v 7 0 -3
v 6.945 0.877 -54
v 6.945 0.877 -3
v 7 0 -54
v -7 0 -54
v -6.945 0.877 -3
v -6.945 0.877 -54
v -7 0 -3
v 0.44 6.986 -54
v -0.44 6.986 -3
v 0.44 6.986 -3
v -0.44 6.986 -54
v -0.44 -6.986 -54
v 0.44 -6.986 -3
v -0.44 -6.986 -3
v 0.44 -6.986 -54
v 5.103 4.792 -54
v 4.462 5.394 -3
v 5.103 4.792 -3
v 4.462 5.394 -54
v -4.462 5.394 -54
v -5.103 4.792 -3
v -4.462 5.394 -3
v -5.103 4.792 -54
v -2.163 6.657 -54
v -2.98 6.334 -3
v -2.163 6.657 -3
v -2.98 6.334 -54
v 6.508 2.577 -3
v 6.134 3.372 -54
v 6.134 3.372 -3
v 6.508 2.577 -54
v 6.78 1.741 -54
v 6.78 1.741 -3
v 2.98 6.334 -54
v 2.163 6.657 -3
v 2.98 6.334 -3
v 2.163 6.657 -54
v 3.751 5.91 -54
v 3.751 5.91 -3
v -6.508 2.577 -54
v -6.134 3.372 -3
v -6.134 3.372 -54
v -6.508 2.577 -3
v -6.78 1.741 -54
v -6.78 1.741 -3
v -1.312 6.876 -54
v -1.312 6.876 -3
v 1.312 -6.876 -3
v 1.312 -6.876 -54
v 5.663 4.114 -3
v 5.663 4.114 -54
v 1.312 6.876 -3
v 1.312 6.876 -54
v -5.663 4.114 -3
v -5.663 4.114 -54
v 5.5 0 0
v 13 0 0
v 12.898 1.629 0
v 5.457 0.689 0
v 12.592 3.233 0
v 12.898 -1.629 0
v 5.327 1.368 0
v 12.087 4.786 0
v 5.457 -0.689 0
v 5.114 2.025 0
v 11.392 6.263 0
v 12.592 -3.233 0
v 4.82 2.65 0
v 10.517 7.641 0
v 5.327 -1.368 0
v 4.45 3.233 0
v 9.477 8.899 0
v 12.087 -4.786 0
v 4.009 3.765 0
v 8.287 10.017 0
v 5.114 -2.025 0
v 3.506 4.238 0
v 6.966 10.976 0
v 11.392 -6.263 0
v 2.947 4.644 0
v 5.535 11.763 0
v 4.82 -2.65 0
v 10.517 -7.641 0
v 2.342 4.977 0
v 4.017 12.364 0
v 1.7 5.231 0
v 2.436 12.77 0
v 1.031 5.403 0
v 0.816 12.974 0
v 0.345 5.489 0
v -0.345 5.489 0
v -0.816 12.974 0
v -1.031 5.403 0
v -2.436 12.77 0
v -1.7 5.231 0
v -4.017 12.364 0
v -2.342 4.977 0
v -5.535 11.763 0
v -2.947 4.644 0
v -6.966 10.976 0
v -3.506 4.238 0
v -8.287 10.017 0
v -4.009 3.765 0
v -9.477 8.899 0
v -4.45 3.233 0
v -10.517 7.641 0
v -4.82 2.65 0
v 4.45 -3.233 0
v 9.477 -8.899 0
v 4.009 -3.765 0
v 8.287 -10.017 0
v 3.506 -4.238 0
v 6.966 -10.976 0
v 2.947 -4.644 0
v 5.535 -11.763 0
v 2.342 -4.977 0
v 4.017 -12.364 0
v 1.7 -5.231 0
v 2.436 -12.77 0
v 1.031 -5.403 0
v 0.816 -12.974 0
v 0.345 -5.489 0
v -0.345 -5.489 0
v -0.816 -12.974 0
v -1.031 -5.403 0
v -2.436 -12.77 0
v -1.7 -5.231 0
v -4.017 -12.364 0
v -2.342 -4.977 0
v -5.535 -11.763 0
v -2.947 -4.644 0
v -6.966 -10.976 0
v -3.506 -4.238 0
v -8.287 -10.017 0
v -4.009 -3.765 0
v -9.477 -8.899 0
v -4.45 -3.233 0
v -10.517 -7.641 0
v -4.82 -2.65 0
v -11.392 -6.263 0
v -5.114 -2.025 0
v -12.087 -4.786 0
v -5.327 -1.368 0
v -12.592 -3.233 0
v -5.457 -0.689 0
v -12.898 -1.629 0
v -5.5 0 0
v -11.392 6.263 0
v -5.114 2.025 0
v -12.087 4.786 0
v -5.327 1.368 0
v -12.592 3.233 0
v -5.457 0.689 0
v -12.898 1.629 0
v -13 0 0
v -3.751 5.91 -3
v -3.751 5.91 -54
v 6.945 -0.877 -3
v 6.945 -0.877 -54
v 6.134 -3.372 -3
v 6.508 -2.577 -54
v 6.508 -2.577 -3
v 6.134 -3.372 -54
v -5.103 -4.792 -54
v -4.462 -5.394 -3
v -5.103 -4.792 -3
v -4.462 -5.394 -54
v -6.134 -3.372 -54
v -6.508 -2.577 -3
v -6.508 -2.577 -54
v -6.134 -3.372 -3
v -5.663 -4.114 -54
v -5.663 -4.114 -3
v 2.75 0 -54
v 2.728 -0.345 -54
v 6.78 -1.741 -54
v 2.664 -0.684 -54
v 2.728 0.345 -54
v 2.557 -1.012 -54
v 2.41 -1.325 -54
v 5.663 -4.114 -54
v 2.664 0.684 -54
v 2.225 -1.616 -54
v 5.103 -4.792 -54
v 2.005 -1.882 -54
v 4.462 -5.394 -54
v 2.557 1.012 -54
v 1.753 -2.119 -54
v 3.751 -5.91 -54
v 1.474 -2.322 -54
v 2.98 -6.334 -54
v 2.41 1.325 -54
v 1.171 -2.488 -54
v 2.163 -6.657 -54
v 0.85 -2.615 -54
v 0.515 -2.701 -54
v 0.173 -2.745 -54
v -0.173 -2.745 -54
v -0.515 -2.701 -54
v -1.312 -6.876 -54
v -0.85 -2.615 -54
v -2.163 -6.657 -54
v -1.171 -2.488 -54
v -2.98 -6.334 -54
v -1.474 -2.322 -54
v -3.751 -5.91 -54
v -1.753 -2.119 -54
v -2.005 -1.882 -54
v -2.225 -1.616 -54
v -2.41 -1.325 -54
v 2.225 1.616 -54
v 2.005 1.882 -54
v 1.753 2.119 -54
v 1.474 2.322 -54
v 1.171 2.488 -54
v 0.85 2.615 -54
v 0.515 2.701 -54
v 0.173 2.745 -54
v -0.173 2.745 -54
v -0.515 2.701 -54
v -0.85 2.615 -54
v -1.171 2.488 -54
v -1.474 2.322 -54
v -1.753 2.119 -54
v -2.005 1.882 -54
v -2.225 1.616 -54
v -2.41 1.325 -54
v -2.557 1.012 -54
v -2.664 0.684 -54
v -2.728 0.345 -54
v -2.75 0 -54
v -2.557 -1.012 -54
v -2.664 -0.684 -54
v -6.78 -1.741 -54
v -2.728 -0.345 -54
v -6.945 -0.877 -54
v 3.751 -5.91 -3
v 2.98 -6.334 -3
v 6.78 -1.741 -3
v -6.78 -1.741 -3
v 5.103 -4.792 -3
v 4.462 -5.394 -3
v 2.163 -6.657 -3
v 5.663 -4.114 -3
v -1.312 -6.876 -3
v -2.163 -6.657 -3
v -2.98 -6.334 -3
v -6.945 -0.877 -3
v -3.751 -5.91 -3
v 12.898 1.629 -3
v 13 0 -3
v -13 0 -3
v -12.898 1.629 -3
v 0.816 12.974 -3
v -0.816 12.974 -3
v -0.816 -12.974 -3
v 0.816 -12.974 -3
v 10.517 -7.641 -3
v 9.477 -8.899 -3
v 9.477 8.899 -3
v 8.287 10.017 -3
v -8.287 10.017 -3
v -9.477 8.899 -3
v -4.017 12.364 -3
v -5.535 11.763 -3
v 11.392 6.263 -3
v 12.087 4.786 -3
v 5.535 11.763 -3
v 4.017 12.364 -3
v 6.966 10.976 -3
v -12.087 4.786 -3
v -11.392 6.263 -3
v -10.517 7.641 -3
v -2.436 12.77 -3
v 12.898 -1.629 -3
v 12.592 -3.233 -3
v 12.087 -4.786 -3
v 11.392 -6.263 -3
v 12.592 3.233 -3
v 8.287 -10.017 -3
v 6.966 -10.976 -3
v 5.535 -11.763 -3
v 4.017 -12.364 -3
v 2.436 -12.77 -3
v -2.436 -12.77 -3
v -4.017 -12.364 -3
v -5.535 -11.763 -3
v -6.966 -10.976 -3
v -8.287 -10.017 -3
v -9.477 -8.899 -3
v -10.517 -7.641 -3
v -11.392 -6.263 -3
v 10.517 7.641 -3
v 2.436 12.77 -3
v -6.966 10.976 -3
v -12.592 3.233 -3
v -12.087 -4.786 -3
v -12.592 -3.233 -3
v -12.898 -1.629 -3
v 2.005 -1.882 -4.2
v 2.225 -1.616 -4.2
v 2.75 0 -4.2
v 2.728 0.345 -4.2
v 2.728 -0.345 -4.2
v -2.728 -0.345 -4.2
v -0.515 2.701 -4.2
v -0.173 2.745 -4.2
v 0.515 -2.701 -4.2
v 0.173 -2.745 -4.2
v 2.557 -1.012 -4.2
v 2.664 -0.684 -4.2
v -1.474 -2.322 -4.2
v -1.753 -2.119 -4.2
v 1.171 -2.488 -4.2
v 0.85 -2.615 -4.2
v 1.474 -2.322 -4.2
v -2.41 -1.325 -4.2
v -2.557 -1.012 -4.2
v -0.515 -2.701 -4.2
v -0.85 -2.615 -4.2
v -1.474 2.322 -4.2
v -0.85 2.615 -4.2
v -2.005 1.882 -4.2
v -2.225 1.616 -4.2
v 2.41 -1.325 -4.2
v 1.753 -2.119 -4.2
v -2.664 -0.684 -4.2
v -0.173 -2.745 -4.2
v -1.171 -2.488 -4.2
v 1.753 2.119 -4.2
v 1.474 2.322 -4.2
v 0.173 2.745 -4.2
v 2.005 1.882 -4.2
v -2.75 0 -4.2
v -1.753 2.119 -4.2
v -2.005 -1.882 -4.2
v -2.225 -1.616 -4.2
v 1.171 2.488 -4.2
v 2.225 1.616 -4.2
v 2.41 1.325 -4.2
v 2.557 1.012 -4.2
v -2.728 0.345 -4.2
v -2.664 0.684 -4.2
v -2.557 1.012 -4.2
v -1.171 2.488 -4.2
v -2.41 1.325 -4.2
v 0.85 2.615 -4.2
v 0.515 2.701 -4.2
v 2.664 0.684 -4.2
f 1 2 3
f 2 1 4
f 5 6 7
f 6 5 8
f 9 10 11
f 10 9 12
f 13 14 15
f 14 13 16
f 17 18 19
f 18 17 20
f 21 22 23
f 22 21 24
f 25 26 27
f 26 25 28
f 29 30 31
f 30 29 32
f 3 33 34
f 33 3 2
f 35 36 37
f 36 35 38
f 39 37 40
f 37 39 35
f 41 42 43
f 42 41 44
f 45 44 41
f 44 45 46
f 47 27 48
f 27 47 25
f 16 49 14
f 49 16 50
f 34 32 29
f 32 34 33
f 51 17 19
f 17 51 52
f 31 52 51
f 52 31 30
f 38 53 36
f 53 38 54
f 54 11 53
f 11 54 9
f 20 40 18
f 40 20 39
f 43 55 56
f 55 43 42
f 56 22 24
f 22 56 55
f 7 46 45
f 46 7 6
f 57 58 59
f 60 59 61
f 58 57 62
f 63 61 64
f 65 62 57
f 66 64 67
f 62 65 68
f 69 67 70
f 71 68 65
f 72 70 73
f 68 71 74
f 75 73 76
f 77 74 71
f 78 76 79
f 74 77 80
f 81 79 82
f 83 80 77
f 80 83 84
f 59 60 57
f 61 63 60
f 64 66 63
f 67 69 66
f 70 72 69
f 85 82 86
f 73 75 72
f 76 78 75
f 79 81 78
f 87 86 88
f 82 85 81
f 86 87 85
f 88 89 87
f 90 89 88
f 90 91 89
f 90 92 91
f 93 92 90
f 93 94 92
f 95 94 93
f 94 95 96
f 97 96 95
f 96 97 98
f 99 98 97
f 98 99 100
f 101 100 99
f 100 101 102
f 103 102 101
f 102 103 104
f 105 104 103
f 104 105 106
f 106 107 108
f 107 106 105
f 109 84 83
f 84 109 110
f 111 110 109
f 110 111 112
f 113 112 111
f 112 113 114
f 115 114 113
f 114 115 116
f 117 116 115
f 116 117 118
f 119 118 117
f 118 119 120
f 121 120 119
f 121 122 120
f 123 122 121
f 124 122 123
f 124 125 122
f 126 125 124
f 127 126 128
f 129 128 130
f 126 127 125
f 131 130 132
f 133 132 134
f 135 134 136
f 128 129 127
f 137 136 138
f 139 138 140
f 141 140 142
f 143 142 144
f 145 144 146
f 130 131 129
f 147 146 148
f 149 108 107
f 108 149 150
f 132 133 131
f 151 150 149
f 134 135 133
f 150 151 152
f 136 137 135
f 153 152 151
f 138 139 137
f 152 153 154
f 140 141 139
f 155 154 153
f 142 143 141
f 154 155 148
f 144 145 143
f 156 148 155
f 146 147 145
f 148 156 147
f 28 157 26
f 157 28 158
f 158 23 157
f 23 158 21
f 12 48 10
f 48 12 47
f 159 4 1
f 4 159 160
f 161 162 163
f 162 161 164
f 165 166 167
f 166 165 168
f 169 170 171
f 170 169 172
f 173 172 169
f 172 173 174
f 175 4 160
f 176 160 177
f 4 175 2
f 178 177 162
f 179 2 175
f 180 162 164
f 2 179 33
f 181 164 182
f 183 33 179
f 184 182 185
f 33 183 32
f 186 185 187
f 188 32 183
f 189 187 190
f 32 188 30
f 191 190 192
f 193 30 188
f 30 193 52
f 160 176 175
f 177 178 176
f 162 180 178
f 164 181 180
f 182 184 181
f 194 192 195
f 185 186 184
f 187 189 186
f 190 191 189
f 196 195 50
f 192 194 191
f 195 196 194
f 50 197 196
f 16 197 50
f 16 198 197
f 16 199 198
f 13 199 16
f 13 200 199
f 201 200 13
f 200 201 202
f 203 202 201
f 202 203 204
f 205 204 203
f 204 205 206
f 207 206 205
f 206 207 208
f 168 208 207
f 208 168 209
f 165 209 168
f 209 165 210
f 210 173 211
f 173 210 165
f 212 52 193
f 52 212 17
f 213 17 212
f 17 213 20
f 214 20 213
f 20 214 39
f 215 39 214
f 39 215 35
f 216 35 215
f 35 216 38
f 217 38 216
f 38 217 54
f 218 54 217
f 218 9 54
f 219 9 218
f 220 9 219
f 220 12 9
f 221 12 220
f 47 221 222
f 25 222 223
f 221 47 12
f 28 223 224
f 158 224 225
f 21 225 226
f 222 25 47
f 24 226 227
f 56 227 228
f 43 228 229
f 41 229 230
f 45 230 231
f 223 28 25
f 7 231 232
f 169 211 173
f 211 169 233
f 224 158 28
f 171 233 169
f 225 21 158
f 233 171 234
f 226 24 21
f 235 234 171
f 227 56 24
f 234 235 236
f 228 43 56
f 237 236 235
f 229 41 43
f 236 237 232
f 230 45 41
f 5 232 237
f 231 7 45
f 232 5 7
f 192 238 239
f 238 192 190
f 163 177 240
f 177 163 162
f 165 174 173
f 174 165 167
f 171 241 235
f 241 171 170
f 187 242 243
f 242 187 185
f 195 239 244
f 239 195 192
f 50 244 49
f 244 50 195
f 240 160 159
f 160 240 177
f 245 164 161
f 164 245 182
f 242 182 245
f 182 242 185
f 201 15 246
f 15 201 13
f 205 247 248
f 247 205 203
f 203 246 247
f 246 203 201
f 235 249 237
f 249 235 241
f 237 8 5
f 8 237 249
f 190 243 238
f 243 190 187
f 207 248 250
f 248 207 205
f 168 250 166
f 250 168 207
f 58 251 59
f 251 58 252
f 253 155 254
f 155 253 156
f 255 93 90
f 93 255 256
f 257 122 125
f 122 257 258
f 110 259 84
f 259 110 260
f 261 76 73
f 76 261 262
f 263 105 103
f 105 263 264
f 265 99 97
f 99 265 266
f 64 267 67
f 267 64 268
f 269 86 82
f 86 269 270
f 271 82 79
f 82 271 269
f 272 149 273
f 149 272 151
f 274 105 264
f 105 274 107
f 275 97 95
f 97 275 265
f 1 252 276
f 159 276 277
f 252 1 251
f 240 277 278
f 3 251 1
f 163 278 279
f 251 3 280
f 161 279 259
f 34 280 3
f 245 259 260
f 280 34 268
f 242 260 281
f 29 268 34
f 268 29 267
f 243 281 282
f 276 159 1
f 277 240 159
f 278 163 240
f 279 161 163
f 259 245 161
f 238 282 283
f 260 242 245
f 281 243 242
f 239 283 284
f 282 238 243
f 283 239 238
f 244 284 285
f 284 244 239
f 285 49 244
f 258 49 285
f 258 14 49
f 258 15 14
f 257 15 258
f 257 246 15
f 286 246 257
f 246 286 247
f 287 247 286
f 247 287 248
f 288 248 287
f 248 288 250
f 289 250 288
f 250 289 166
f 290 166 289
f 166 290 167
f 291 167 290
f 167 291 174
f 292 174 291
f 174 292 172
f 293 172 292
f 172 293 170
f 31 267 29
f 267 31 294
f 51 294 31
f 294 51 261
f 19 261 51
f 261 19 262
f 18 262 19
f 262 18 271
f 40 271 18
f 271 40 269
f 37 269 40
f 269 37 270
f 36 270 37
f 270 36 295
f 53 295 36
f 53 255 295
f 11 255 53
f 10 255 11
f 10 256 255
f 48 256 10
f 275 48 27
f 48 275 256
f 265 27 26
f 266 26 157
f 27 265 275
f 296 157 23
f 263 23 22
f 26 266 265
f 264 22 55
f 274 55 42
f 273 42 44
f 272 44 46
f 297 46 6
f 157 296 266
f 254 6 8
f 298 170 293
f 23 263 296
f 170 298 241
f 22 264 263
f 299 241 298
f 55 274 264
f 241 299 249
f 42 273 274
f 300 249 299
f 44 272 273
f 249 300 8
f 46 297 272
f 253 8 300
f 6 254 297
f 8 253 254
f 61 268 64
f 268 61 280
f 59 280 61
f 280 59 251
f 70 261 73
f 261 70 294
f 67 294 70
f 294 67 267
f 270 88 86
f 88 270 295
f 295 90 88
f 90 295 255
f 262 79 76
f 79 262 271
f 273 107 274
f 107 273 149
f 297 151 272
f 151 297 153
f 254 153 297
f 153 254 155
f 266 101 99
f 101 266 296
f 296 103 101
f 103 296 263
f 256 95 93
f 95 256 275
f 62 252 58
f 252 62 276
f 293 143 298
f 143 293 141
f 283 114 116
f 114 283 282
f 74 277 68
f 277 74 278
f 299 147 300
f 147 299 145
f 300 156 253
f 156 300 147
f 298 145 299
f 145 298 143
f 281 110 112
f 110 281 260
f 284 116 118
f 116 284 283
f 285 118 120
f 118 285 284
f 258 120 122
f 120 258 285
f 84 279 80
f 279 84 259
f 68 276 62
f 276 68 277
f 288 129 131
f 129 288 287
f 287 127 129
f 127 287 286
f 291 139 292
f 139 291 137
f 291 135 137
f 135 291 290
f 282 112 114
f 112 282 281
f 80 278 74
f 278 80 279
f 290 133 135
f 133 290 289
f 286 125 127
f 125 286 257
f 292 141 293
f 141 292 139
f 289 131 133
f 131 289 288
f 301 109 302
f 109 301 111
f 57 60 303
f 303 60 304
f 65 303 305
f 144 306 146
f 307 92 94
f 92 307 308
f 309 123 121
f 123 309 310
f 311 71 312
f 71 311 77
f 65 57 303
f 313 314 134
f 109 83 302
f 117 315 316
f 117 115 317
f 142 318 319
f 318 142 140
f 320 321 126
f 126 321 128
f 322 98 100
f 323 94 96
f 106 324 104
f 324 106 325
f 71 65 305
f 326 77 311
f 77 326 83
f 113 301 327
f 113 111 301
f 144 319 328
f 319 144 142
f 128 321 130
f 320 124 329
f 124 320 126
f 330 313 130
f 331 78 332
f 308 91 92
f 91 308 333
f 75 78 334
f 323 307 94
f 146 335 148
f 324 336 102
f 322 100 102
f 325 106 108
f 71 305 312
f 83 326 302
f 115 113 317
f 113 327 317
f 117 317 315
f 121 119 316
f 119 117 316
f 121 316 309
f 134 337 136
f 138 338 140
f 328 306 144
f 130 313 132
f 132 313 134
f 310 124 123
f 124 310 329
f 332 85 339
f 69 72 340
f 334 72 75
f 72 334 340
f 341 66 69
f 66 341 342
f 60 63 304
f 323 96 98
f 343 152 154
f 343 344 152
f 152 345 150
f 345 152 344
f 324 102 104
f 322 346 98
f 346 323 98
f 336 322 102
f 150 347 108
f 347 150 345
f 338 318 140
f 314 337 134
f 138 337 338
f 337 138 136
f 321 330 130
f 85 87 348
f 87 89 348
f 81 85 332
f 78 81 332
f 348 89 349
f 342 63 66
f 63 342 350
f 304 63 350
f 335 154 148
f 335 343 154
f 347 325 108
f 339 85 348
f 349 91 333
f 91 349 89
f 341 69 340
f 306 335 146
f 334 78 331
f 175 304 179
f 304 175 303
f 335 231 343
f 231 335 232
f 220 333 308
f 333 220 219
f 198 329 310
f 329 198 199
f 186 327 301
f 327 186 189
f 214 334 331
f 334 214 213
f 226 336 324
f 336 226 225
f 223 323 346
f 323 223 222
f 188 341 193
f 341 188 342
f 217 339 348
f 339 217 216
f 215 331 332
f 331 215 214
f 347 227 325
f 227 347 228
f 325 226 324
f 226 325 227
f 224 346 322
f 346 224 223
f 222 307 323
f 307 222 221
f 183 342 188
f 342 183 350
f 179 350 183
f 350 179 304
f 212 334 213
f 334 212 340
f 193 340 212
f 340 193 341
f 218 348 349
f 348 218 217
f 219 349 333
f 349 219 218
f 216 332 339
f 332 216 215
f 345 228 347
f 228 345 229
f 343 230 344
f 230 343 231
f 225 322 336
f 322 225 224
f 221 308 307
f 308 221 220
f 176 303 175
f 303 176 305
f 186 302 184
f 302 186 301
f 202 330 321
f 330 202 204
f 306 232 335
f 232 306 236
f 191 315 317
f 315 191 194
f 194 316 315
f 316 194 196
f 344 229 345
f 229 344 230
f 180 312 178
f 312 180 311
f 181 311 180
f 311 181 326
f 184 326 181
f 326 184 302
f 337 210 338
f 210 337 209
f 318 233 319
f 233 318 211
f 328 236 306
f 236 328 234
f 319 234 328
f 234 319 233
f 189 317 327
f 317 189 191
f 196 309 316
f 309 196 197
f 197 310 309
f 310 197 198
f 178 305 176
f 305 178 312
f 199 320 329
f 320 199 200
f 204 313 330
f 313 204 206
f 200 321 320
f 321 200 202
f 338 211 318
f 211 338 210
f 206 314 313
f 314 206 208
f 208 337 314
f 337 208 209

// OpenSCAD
$fn = 50;


difference() {
	union() {
		translate(v = [0, 0, -54.0000000000]) {
			cylinder(h = 54, r = 7.0000000000);
		}
		translate(v = [0, 0, -3.0000000000]) {
			cylinder(h = 3, r = 13.0000000000);
		}
	}
	union() {
		translate(v = [0, 0, 0]) {
			rotate(a = [0, 0, 0]) {
				difference() {
					union() {
						#translate(v = [0, 0, -54.0000000000]) {
							cylinder(h = 54, r = 2.2500000000);
						}
						#translate(v = [0, 0, -4.2000000000]) {
							cylinder(h = 4.2000000000, r1 = 2.7500000000, r2 = 5.5000000000);
						}
						#translate(v = [0, 0, -54.0000000000]) {
							cylinder(h = 54, r = 2.7500000000);
						}
						#translate(v = [0, 0, -54.0000000000]) {
							cylinder(h = 54, r = 2.2500000000);
						}
					}
					union();
				}
			}
		}
	}
}
